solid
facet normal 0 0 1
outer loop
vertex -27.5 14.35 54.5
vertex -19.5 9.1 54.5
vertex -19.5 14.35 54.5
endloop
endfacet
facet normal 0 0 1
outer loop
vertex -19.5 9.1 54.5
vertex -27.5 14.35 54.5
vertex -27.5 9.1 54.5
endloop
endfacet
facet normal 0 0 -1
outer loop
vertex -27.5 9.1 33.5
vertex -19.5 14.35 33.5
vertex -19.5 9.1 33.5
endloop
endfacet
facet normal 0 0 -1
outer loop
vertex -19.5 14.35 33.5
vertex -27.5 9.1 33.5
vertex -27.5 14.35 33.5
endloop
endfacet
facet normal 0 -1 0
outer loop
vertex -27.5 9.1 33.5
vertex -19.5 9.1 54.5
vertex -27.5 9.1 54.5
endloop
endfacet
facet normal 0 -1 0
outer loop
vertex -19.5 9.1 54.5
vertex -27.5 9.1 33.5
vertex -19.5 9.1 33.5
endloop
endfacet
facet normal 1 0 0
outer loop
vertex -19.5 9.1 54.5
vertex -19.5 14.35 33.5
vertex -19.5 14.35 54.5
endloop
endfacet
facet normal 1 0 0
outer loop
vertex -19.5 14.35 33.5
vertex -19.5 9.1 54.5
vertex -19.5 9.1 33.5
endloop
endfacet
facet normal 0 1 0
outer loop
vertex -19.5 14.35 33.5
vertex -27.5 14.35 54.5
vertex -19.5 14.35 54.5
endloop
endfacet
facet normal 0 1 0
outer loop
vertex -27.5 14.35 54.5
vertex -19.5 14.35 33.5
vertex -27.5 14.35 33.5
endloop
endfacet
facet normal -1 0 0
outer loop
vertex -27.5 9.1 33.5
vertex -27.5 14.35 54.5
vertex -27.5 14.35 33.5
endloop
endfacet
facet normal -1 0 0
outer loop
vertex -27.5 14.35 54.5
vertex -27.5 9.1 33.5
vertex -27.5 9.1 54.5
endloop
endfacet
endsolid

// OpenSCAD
// file: D:/Projects/assembly-workshop/outputs/Screen_Pi_Hue_SCR5-H8_2026-10-31/checks/geometry.scad
// SCR5-G; mm; FRONT view: X right, Z up, Y into rack. Glass/plate front Y=0.
// Measured values: work/screen-5in/Dimensions.md. Physical fit/strength UNKNOWN.
part="plate";
DROP=0.45; // coupon winner can be substituted here; all three pins use this DROP
LIP=0.8; LIP_ON=true;
LIP_EDGES=[true,true,false,false]; // left,right,bottom,top; Brian: side lips only, cosmetic
FRAME_STEP=1.5; // measured glass-edge inset to metal LCD frame, left/right only
SHIM=0; // moves rear frame seat and plate-boss mating face back
$fn=48;
GCX=33; GCZ=41.5; PW=252; PH=88.8; PT=4;
GW=120.7; GH=77.2; CLEAR=0.2; WW=GW+2*CLEAR; WH=GH+2*CLEAR;
SEAT=13.3+SHIM; FT=3;
SO=[56.45,34]; BTN_X=[45.5,35.5,25.5];
PCB_TOP=38; GAP=0.10; LEAF_T=0.8;
HOLE=[3.4,40.3,44.7];
BX=[GCX-68,GCX+68]; BZ=[10,72];
// DSI connector X extent is unmeasured: conservative assumed 8 mm inward from PCB edge.
DSI=[GCX-60.5,9.1,GCZ-38+30,8,5.25,21];
module xz(y,d){translate([0,y+d,0])rotate([90,0,0])linear_extrude(d)children();}
// rr/rack_slots copied from SCR5-F; same exact slot centres, outline shifted -0.05 Z to centre 44.4.
module rr(w,h,r){hull()for(x=[-w/2+r,w/2-r],z=[-h/2+r,h/2-r])translate([x,z])circle(r=r);}
module rack_slots(){for(x=[-118.2625,118.2625],z=[6.323,38.127,50.773,82.577])translate([x,z])hull()for(dx=[-1.5,1.5])translate([dx,0])circle(d=7);}
module cyl_y(x,y,z,d,h){translate([x,y,z])rotate([-90,0,0])cylinder(d=d,h=h);}
module window_cut(){
  xz(-0.02,4.04)translate([GCX,GCZ])square([WW,WH],center=true);
  // 0.3 x 45-degree chamfer, square corners, front only.
  translate([GCX,0.3,GCZ])rotate([90,0,0])
    linear_extrude(height=0.3,scale=[(WW+0.6)/WW,(WH+0.6)/WH])square([WW,WH],center=true);
}
module lips(){
  // Cosmetic side ledges only; rear frame/standoffs set depth and retain the screen.
  if(LIP_ON)for(i=[0:3])if(LIP_EDGES[i]){
    if(i<2)translate([GCX+(i==0?-WW/2:WW/2-LIP),2.5,GCZ-GH/2+4])cube([LIP,0.8,GH-8]);
    else translate([GCX-GW/2+4,2.5,GCZ+(i==2?-WH/2:WH/2-LIP)])cube([GW-8,0.8,LIP]);
  }
}
// Leaf/nub/bump geometry copied from SCR5-WP-A, translated to this glass centre.
module leaves(){for(x=BTN_X)translate([GCX+x-1.5,0,GCZ]){
  translate([0,0,PCB_TOP+GAP+0.9+0.1])cube([3,11.8,LEAF_T]);
  translate([0,10.2,PCB_TOP+GAP])cube([3,1.4,1.0+LEAF_T/2]);
  translate([0,10.4,PCB_TOP+GAP+1.0+LEAF_T])cube([3,1.0,0.9]);
}}
module plate(){difference(){union(){
  difference(){xz(0,PT)translate([0,PH/2])rr(PW,PH,2.5);window_cut();}
  for(x=BX,z=BZ)cyl_y(x,3.9,z,8,SEAT-3.9);
  leaves(); lips();
 }
 xz(-0.02,4.04)rack_slots();
 for(x=BTN_X)translate([GCX+x-HOLE[0]/2,-0.02,GCZ+HOLE[1]])cube([HOLE[0],SEAT+FT+0.04,HOLE[2]-HOLE[1]]);
 // Printed-in screw pilots (no heat-set OD assumption): nominal M2.5, fit UNKNOWN.
 for(x=BX,z=BZ)cyl_y(x,SEAT-6,z,2.1,6.02);
 // Rear engraving, 0.5 deep, left field.
 xz(3.5,0.52)translate([-75,40])mirror([1,0])text("SCR5-G",size=6,halign="center",font="Liberation Sans:style=Bold");
}}
module frame_blank(){
  // C-shaped perimeter; no material across the board centre / touch FPC.
  xz(SEAT,FT)translate([GCX,GCZ])difference(){square([132,76],center=true);square([116,60],center=true);}
  for(sx=[-1,1],sz=[-1,1])cyl_y(GCX+sx*SO[0],SEAT,GCZ+sz*SO[1],9,FT);
  for(x=BX,z=BZ)hull(){cyl_y(x,SEAT,z,8,FT);cyl_y(GCX+(x<GCX?-62:62),SEAT,z,8,FT);}
}
module dsi_keepout(){translate([DSI[0]-3,DSI[1]-3,DSI[2]-3])cube([DSI[3]+6,DSI[4]+6,DSI[5]+6]);}
module ribbon_route(){
  // Open left/up corridor 18 mm wide; extends past top of plate.
  translate([GCX-84,6.1,GCZ-11])cube([18,24,65]);
  translate([GCX-84,6.1,GCZ-11])cube([32,24,27]);
}
module frame(){difference(){frame_blank();dsi_keepout();ribbon_route();
 for(sx=[-1,1],sz=[-1,1])cyl_y(GCX+sx*SO[0],SEAT-0.02,GCZ+sz*SO[1],2.8,FT+0.04);
 for(x=BX,z=BZ)cyl_y(x,SEAT-0.02,z,2.8,FT+0.04);
}}
// Pin polygon/cap/notch/dot design copied unchanged from SCR5-WP-A.
module pin(d,dots){s=2*d+0.5;difference(){union(){
 translate([-1.5,0,0])rotate([90,0,90])linear_extrude(3)polygon([
 [-s-0.02,40.5],[10.2,40.5],[10.2,41.0],[11.5,41.0],[11.5+2*d,41.0-d],[15,41.0-d],[15,44.5],[-s-0.02,44.5]]);
 translate([-2.5,-s-1.5,39.6])cube([5,1.5,5.8]);
 }for(i=[0:dots-1])translate([(i-(dots-1)/2)*1.4,-s-1.5-0.01,43.5])rotate([-90,0,0])cylinder(d=0.9,h=0.4);}}
module placed_pin(i){translate([GCX+BTN_X[i],0,GCZ])pin(DROP,i+1);}
// Measured layers: cover glass 0.9 + second glass 1.6, metal frame 3.0,
// open gap 2.0, PCB 1.6. Metal frame inset ~1.5 at LEFT/RIGHT only.
// PCB centred under glass and full metal-frame top/bottom extent remain UNKNOWN.
module glass(){translate([GCX-GW/2,0,GCZ-GH/2])cube([GW,2.5,GH]);}
module lcd(){
  translate([GCX-GW/2+FRAME_STEP,2.5,GCZ-GH/2])cube([GW-2*FRAME_STEP,3.0,GH]);
}
module pcb(){translate([GCX-60.5,7.5,GCZ-38])cube([121,1.6,76]);}
module standoffs(){for(sx=[-1,1],sz=[-1,1])difference(){cyl_y(GCX+sx*SO[0],9.1,GCZ+sz*SO[1],5.5,4.2);cyl_y(GCX+sx*SO[0],9.08,GCZ+sz*SO[1],2.5,4.24);}}
module buttons(){for(x=BTN_X){
 translate([GCX+x-3.5,9.1,GCZ+38-3.4])cube([7,3.6,2.4]);
 translate([GCX+x-1.5,9.1,GCZ+37])cube([3,3.6,1]);
}}
module dsi(){translate([DSI[0],DSI[1],DSI[2]])cube([DSI[3],DSI[4],DSI[5]]);}
module touch(){translate([GCX-10,9.1,GCZ-5])cube([20,2,10]);} // lateral extent unmeasured
module dummy(){glass();lcd();pcb();standoffs();buttons();dsi();touch();}
module assembly(){color("gray")plate();color("orange")frame();for(i=[0:2])color("cyan")placed_pin(i);color([0.2,0.3,0.4,0.4])dummy();}
// main file
include <D:/Projects/assembly-workshop/outputs/Screen_Pi_Hue_SCR5-H8_2026-10-31/checks/geometry.scad>
dsi();
